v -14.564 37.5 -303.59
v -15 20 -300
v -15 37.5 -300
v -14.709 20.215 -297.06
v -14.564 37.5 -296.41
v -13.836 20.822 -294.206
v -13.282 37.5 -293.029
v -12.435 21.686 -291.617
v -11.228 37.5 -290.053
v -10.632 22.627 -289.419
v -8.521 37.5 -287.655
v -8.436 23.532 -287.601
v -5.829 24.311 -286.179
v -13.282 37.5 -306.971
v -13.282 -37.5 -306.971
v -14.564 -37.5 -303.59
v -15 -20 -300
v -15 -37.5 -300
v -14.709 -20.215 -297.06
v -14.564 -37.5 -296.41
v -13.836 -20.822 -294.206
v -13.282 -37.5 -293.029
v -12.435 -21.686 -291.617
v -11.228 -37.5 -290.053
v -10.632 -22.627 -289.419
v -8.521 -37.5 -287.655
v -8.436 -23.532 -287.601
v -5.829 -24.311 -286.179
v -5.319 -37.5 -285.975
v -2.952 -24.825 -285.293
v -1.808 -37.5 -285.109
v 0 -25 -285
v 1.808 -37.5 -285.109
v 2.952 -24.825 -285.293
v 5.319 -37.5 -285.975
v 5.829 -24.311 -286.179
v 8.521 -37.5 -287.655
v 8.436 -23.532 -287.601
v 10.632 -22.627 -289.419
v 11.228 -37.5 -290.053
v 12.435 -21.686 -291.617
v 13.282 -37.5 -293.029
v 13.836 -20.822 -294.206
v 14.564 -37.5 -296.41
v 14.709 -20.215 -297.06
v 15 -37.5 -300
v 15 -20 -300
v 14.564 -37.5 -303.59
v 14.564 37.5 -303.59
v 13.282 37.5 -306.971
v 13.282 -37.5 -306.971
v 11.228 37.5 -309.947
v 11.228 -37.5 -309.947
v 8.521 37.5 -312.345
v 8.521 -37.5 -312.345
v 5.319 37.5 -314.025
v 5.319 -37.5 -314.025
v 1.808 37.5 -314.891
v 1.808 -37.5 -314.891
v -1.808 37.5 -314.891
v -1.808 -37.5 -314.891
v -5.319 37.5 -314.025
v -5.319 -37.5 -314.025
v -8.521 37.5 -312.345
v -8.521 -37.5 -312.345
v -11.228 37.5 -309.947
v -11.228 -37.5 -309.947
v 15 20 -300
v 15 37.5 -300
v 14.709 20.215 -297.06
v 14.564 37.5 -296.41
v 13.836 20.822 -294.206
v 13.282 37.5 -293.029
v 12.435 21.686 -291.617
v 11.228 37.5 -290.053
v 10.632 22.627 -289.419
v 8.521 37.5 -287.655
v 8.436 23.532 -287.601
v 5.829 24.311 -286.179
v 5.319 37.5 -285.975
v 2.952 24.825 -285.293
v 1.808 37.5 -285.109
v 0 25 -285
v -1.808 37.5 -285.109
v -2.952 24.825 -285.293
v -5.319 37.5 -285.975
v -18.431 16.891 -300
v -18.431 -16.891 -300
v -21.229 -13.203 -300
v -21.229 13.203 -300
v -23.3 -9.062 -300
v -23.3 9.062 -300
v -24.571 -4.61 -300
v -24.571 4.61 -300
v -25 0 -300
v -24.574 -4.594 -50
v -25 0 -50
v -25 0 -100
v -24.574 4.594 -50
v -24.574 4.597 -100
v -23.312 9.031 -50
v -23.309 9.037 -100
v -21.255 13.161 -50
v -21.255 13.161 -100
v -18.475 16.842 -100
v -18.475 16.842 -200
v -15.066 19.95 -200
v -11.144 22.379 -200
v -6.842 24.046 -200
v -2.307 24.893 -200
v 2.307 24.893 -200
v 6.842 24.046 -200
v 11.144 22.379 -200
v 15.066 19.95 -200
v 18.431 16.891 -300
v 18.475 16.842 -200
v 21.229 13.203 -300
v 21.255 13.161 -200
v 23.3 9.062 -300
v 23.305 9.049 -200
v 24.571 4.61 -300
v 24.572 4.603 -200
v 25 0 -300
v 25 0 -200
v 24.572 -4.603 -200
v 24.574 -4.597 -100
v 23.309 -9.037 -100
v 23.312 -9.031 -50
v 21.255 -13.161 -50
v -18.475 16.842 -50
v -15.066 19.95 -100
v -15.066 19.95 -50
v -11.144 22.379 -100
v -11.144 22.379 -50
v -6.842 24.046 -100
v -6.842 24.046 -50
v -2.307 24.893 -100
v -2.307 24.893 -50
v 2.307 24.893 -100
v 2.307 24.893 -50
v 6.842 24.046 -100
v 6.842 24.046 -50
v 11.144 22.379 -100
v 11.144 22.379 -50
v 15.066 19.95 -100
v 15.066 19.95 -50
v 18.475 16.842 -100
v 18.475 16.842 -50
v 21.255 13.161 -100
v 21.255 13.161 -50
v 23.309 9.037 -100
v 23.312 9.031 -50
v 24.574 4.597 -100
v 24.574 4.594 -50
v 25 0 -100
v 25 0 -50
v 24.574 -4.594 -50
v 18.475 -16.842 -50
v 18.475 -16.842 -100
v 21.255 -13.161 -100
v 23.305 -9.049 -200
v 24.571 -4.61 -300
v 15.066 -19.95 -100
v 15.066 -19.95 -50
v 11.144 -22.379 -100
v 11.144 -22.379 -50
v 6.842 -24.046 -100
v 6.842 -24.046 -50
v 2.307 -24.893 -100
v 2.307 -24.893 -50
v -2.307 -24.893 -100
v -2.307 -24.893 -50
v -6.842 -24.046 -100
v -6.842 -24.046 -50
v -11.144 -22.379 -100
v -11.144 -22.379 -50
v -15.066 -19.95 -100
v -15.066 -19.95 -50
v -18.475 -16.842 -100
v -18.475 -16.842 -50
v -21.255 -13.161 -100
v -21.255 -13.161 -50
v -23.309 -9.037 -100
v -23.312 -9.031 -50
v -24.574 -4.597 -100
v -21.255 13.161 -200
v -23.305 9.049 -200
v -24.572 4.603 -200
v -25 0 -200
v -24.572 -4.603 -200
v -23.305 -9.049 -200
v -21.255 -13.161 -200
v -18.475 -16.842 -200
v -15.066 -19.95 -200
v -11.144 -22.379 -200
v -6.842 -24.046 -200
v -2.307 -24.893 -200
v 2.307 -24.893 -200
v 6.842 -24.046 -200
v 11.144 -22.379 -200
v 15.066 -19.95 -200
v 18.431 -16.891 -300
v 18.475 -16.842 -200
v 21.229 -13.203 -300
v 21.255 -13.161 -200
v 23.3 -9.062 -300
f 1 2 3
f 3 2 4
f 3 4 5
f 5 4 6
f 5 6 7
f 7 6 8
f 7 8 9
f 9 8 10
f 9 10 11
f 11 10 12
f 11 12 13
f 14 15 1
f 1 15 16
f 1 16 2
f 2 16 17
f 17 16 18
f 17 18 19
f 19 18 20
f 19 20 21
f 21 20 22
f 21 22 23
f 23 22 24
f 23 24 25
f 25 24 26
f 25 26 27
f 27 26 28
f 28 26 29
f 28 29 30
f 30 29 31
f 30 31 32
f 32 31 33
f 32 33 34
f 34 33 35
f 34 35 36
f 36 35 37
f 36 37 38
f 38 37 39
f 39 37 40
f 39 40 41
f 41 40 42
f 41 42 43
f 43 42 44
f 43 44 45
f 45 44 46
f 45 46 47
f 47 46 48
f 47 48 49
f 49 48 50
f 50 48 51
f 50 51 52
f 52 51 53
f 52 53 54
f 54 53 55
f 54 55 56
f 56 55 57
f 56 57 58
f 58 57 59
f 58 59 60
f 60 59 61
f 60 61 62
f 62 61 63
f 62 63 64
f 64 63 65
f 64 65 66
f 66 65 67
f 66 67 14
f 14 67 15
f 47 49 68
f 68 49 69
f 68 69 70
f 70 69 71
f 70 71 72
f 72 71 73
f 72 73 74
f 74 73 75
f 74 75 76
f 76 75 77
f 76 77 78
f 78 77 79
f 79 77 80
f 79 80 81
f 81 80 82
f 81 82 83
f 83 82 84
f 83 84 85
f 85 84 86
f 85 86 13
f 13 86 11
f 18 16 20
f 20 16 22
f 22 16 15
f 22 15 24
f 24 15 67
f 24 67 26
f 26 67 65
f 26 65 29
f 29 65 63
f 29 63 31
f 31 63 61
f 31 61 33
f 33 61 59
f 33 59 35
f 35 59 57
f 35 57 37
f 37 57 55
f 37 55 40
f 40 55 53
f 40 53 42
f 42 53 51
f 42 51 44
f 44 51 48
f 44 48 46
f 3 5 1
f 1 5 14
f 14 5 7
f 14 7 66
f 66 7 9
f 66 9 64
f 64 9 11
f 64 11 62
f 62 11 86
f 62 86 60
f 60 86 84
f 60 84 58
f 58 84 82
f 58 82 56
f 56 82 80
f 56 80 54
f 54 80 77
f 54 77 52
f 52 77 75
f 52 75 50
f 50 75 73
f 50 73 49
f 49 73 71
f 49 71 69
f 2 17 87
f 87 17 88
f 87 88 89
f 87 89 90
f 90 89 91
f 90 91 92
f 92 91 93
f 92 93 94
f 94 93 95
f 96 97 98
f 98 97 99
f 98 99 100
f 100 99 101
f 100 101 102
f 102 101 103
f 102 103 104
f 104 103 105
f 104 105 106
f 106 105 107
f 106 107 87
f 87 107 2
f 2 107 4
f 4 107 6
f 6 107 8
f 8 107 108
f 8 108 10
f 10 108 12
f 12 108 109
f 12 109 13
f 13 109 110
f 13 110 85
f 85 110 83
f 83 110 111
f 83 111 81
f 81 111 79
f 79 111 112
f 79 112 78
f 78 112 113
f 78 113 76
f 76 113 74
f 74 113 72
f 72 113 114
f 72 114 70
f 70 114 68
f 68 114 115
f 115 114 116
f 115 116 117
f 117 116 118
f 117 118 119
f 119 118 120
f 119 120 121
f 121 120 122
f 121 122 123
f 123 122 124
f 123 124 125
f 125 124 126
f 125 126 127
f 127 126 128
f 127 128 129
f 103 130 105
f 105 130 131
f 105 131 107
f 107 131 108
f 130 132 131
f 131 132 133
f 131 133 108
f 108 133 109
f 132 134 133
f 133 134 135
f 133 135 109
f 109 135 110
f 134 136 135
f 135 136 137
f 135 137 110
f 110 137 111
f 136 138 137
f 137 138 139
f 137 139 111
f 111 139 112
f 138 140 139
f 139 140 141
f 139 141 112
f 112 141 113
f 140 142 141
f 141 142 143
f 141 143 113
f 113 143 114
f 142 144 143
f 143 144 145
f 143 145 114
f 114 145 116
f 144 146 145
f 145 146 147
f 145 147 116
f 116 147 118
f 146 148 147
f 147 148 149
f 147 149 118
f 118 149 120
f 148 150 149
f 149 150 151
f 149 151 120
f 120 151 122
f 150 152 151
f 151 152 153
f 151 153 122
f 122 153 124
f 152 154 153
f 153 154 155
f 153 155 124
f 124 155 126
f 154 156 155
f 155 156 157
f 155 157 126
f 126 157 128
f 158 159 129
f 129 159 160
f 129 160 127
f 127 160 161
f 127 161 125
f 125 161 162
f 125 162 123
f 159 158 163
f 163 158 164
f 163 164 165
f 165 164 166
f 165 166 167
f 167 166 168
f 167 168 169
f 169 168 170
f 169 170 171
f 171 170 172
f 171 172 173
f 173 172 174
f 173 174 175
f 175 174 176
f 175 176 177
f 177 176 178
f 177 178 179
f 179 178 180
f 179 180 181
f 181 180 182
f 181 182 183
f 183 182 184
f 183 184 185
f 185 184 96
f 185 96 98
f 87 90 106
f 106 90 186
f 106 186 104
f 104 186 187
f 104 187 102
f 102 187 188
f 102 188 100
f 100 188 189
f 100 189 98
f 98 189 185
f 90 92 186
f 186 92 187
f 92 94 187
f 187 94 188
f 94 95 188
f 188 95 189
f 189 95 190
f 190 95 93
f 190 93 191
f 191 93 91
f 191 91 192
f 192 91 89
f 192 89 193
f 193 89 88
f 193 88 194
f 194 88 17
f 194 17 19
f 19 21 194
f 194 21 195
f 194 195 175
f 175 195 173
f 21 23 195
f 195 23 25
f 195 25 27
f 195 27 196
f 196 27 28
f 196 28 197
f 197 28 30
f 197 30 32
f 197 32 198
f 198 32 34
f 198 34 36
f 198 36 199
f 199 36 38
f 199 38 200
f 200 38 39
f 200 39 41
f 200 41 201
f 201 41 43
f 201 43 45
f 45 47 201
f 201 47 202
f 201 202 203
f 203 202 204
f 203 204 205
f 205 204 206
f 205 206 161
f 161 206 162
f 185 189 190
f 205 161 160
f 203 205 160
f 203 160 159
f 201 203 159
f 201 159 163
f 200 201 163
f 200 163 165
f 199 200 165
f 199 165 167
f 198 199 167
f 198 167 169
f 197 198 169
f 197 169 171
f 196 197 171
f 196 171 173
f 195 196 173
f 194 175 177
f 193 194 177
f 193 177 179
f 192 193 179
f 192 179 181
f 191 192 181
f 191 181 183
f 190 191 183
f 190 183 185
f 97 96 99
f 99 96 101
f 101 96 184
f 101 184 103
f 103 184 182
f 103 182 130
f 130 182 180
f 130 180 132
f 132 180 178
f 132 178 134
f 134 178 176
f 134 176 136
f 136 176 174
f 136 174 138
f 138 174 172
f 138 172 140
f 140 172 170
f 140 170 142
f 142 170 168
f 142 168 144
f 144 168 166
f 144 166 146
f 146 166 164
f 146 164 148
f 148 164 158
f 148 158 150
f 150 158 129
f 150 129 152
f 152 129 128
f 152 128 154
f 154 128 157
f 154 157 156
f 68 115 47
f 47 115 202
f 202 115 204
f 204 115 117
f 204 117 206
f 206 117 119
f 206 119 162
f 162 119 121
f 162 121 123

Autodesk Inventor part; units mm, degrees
ref_plane "作業平面1" through (0, 0, -300) normal (0, 0, 1) x (1, 0, 0)
sketch "スケッチ3" plane through (0, 0, 0) normal (0, 0, 1) x (1, 0, 0)
  circle A0 centre (0, 0) radius 25
  dimension "d7" = 50
extrude "押し出し2" add sketch "スケッチ3" against normal blind 300
sketch "スケッチ4" plane through (0, 0, 0) normal (1, 0, 0) x (0, 1, 0)
  line L0 (82.0674, 98.3645) -> (-82.6495, 98.3645)
  line L1 (-82.6495, 98.3645) -> (-82.6495, -50)
  line L2 (-82.6495, -50) -> (82.0674, -50)
  line L3 (82.0674, -50) -> (82.0674, 98.3645)
  line L4 (-115.5929, 0) -> (115.0108, 0) projected
  point P0 (0, 0)
  dimension "d10" = 50
extrude "押し出し3" cut sketch "スケッチ4" along normal mid plane 300
sketch "スケッチ5" plane through (0, 0, 0) normal (0, 1, 0) x (-1, 0, 0)
  circle A0 centre (0, -300) radius 15
  point P0 (0, 0)
  dimension "d13" = 30
  dimension "d14" = 300
extrude "押し出し4" add sketch "スケッチ5" along normal mid plane 75
properties part number "UpperlegP"
